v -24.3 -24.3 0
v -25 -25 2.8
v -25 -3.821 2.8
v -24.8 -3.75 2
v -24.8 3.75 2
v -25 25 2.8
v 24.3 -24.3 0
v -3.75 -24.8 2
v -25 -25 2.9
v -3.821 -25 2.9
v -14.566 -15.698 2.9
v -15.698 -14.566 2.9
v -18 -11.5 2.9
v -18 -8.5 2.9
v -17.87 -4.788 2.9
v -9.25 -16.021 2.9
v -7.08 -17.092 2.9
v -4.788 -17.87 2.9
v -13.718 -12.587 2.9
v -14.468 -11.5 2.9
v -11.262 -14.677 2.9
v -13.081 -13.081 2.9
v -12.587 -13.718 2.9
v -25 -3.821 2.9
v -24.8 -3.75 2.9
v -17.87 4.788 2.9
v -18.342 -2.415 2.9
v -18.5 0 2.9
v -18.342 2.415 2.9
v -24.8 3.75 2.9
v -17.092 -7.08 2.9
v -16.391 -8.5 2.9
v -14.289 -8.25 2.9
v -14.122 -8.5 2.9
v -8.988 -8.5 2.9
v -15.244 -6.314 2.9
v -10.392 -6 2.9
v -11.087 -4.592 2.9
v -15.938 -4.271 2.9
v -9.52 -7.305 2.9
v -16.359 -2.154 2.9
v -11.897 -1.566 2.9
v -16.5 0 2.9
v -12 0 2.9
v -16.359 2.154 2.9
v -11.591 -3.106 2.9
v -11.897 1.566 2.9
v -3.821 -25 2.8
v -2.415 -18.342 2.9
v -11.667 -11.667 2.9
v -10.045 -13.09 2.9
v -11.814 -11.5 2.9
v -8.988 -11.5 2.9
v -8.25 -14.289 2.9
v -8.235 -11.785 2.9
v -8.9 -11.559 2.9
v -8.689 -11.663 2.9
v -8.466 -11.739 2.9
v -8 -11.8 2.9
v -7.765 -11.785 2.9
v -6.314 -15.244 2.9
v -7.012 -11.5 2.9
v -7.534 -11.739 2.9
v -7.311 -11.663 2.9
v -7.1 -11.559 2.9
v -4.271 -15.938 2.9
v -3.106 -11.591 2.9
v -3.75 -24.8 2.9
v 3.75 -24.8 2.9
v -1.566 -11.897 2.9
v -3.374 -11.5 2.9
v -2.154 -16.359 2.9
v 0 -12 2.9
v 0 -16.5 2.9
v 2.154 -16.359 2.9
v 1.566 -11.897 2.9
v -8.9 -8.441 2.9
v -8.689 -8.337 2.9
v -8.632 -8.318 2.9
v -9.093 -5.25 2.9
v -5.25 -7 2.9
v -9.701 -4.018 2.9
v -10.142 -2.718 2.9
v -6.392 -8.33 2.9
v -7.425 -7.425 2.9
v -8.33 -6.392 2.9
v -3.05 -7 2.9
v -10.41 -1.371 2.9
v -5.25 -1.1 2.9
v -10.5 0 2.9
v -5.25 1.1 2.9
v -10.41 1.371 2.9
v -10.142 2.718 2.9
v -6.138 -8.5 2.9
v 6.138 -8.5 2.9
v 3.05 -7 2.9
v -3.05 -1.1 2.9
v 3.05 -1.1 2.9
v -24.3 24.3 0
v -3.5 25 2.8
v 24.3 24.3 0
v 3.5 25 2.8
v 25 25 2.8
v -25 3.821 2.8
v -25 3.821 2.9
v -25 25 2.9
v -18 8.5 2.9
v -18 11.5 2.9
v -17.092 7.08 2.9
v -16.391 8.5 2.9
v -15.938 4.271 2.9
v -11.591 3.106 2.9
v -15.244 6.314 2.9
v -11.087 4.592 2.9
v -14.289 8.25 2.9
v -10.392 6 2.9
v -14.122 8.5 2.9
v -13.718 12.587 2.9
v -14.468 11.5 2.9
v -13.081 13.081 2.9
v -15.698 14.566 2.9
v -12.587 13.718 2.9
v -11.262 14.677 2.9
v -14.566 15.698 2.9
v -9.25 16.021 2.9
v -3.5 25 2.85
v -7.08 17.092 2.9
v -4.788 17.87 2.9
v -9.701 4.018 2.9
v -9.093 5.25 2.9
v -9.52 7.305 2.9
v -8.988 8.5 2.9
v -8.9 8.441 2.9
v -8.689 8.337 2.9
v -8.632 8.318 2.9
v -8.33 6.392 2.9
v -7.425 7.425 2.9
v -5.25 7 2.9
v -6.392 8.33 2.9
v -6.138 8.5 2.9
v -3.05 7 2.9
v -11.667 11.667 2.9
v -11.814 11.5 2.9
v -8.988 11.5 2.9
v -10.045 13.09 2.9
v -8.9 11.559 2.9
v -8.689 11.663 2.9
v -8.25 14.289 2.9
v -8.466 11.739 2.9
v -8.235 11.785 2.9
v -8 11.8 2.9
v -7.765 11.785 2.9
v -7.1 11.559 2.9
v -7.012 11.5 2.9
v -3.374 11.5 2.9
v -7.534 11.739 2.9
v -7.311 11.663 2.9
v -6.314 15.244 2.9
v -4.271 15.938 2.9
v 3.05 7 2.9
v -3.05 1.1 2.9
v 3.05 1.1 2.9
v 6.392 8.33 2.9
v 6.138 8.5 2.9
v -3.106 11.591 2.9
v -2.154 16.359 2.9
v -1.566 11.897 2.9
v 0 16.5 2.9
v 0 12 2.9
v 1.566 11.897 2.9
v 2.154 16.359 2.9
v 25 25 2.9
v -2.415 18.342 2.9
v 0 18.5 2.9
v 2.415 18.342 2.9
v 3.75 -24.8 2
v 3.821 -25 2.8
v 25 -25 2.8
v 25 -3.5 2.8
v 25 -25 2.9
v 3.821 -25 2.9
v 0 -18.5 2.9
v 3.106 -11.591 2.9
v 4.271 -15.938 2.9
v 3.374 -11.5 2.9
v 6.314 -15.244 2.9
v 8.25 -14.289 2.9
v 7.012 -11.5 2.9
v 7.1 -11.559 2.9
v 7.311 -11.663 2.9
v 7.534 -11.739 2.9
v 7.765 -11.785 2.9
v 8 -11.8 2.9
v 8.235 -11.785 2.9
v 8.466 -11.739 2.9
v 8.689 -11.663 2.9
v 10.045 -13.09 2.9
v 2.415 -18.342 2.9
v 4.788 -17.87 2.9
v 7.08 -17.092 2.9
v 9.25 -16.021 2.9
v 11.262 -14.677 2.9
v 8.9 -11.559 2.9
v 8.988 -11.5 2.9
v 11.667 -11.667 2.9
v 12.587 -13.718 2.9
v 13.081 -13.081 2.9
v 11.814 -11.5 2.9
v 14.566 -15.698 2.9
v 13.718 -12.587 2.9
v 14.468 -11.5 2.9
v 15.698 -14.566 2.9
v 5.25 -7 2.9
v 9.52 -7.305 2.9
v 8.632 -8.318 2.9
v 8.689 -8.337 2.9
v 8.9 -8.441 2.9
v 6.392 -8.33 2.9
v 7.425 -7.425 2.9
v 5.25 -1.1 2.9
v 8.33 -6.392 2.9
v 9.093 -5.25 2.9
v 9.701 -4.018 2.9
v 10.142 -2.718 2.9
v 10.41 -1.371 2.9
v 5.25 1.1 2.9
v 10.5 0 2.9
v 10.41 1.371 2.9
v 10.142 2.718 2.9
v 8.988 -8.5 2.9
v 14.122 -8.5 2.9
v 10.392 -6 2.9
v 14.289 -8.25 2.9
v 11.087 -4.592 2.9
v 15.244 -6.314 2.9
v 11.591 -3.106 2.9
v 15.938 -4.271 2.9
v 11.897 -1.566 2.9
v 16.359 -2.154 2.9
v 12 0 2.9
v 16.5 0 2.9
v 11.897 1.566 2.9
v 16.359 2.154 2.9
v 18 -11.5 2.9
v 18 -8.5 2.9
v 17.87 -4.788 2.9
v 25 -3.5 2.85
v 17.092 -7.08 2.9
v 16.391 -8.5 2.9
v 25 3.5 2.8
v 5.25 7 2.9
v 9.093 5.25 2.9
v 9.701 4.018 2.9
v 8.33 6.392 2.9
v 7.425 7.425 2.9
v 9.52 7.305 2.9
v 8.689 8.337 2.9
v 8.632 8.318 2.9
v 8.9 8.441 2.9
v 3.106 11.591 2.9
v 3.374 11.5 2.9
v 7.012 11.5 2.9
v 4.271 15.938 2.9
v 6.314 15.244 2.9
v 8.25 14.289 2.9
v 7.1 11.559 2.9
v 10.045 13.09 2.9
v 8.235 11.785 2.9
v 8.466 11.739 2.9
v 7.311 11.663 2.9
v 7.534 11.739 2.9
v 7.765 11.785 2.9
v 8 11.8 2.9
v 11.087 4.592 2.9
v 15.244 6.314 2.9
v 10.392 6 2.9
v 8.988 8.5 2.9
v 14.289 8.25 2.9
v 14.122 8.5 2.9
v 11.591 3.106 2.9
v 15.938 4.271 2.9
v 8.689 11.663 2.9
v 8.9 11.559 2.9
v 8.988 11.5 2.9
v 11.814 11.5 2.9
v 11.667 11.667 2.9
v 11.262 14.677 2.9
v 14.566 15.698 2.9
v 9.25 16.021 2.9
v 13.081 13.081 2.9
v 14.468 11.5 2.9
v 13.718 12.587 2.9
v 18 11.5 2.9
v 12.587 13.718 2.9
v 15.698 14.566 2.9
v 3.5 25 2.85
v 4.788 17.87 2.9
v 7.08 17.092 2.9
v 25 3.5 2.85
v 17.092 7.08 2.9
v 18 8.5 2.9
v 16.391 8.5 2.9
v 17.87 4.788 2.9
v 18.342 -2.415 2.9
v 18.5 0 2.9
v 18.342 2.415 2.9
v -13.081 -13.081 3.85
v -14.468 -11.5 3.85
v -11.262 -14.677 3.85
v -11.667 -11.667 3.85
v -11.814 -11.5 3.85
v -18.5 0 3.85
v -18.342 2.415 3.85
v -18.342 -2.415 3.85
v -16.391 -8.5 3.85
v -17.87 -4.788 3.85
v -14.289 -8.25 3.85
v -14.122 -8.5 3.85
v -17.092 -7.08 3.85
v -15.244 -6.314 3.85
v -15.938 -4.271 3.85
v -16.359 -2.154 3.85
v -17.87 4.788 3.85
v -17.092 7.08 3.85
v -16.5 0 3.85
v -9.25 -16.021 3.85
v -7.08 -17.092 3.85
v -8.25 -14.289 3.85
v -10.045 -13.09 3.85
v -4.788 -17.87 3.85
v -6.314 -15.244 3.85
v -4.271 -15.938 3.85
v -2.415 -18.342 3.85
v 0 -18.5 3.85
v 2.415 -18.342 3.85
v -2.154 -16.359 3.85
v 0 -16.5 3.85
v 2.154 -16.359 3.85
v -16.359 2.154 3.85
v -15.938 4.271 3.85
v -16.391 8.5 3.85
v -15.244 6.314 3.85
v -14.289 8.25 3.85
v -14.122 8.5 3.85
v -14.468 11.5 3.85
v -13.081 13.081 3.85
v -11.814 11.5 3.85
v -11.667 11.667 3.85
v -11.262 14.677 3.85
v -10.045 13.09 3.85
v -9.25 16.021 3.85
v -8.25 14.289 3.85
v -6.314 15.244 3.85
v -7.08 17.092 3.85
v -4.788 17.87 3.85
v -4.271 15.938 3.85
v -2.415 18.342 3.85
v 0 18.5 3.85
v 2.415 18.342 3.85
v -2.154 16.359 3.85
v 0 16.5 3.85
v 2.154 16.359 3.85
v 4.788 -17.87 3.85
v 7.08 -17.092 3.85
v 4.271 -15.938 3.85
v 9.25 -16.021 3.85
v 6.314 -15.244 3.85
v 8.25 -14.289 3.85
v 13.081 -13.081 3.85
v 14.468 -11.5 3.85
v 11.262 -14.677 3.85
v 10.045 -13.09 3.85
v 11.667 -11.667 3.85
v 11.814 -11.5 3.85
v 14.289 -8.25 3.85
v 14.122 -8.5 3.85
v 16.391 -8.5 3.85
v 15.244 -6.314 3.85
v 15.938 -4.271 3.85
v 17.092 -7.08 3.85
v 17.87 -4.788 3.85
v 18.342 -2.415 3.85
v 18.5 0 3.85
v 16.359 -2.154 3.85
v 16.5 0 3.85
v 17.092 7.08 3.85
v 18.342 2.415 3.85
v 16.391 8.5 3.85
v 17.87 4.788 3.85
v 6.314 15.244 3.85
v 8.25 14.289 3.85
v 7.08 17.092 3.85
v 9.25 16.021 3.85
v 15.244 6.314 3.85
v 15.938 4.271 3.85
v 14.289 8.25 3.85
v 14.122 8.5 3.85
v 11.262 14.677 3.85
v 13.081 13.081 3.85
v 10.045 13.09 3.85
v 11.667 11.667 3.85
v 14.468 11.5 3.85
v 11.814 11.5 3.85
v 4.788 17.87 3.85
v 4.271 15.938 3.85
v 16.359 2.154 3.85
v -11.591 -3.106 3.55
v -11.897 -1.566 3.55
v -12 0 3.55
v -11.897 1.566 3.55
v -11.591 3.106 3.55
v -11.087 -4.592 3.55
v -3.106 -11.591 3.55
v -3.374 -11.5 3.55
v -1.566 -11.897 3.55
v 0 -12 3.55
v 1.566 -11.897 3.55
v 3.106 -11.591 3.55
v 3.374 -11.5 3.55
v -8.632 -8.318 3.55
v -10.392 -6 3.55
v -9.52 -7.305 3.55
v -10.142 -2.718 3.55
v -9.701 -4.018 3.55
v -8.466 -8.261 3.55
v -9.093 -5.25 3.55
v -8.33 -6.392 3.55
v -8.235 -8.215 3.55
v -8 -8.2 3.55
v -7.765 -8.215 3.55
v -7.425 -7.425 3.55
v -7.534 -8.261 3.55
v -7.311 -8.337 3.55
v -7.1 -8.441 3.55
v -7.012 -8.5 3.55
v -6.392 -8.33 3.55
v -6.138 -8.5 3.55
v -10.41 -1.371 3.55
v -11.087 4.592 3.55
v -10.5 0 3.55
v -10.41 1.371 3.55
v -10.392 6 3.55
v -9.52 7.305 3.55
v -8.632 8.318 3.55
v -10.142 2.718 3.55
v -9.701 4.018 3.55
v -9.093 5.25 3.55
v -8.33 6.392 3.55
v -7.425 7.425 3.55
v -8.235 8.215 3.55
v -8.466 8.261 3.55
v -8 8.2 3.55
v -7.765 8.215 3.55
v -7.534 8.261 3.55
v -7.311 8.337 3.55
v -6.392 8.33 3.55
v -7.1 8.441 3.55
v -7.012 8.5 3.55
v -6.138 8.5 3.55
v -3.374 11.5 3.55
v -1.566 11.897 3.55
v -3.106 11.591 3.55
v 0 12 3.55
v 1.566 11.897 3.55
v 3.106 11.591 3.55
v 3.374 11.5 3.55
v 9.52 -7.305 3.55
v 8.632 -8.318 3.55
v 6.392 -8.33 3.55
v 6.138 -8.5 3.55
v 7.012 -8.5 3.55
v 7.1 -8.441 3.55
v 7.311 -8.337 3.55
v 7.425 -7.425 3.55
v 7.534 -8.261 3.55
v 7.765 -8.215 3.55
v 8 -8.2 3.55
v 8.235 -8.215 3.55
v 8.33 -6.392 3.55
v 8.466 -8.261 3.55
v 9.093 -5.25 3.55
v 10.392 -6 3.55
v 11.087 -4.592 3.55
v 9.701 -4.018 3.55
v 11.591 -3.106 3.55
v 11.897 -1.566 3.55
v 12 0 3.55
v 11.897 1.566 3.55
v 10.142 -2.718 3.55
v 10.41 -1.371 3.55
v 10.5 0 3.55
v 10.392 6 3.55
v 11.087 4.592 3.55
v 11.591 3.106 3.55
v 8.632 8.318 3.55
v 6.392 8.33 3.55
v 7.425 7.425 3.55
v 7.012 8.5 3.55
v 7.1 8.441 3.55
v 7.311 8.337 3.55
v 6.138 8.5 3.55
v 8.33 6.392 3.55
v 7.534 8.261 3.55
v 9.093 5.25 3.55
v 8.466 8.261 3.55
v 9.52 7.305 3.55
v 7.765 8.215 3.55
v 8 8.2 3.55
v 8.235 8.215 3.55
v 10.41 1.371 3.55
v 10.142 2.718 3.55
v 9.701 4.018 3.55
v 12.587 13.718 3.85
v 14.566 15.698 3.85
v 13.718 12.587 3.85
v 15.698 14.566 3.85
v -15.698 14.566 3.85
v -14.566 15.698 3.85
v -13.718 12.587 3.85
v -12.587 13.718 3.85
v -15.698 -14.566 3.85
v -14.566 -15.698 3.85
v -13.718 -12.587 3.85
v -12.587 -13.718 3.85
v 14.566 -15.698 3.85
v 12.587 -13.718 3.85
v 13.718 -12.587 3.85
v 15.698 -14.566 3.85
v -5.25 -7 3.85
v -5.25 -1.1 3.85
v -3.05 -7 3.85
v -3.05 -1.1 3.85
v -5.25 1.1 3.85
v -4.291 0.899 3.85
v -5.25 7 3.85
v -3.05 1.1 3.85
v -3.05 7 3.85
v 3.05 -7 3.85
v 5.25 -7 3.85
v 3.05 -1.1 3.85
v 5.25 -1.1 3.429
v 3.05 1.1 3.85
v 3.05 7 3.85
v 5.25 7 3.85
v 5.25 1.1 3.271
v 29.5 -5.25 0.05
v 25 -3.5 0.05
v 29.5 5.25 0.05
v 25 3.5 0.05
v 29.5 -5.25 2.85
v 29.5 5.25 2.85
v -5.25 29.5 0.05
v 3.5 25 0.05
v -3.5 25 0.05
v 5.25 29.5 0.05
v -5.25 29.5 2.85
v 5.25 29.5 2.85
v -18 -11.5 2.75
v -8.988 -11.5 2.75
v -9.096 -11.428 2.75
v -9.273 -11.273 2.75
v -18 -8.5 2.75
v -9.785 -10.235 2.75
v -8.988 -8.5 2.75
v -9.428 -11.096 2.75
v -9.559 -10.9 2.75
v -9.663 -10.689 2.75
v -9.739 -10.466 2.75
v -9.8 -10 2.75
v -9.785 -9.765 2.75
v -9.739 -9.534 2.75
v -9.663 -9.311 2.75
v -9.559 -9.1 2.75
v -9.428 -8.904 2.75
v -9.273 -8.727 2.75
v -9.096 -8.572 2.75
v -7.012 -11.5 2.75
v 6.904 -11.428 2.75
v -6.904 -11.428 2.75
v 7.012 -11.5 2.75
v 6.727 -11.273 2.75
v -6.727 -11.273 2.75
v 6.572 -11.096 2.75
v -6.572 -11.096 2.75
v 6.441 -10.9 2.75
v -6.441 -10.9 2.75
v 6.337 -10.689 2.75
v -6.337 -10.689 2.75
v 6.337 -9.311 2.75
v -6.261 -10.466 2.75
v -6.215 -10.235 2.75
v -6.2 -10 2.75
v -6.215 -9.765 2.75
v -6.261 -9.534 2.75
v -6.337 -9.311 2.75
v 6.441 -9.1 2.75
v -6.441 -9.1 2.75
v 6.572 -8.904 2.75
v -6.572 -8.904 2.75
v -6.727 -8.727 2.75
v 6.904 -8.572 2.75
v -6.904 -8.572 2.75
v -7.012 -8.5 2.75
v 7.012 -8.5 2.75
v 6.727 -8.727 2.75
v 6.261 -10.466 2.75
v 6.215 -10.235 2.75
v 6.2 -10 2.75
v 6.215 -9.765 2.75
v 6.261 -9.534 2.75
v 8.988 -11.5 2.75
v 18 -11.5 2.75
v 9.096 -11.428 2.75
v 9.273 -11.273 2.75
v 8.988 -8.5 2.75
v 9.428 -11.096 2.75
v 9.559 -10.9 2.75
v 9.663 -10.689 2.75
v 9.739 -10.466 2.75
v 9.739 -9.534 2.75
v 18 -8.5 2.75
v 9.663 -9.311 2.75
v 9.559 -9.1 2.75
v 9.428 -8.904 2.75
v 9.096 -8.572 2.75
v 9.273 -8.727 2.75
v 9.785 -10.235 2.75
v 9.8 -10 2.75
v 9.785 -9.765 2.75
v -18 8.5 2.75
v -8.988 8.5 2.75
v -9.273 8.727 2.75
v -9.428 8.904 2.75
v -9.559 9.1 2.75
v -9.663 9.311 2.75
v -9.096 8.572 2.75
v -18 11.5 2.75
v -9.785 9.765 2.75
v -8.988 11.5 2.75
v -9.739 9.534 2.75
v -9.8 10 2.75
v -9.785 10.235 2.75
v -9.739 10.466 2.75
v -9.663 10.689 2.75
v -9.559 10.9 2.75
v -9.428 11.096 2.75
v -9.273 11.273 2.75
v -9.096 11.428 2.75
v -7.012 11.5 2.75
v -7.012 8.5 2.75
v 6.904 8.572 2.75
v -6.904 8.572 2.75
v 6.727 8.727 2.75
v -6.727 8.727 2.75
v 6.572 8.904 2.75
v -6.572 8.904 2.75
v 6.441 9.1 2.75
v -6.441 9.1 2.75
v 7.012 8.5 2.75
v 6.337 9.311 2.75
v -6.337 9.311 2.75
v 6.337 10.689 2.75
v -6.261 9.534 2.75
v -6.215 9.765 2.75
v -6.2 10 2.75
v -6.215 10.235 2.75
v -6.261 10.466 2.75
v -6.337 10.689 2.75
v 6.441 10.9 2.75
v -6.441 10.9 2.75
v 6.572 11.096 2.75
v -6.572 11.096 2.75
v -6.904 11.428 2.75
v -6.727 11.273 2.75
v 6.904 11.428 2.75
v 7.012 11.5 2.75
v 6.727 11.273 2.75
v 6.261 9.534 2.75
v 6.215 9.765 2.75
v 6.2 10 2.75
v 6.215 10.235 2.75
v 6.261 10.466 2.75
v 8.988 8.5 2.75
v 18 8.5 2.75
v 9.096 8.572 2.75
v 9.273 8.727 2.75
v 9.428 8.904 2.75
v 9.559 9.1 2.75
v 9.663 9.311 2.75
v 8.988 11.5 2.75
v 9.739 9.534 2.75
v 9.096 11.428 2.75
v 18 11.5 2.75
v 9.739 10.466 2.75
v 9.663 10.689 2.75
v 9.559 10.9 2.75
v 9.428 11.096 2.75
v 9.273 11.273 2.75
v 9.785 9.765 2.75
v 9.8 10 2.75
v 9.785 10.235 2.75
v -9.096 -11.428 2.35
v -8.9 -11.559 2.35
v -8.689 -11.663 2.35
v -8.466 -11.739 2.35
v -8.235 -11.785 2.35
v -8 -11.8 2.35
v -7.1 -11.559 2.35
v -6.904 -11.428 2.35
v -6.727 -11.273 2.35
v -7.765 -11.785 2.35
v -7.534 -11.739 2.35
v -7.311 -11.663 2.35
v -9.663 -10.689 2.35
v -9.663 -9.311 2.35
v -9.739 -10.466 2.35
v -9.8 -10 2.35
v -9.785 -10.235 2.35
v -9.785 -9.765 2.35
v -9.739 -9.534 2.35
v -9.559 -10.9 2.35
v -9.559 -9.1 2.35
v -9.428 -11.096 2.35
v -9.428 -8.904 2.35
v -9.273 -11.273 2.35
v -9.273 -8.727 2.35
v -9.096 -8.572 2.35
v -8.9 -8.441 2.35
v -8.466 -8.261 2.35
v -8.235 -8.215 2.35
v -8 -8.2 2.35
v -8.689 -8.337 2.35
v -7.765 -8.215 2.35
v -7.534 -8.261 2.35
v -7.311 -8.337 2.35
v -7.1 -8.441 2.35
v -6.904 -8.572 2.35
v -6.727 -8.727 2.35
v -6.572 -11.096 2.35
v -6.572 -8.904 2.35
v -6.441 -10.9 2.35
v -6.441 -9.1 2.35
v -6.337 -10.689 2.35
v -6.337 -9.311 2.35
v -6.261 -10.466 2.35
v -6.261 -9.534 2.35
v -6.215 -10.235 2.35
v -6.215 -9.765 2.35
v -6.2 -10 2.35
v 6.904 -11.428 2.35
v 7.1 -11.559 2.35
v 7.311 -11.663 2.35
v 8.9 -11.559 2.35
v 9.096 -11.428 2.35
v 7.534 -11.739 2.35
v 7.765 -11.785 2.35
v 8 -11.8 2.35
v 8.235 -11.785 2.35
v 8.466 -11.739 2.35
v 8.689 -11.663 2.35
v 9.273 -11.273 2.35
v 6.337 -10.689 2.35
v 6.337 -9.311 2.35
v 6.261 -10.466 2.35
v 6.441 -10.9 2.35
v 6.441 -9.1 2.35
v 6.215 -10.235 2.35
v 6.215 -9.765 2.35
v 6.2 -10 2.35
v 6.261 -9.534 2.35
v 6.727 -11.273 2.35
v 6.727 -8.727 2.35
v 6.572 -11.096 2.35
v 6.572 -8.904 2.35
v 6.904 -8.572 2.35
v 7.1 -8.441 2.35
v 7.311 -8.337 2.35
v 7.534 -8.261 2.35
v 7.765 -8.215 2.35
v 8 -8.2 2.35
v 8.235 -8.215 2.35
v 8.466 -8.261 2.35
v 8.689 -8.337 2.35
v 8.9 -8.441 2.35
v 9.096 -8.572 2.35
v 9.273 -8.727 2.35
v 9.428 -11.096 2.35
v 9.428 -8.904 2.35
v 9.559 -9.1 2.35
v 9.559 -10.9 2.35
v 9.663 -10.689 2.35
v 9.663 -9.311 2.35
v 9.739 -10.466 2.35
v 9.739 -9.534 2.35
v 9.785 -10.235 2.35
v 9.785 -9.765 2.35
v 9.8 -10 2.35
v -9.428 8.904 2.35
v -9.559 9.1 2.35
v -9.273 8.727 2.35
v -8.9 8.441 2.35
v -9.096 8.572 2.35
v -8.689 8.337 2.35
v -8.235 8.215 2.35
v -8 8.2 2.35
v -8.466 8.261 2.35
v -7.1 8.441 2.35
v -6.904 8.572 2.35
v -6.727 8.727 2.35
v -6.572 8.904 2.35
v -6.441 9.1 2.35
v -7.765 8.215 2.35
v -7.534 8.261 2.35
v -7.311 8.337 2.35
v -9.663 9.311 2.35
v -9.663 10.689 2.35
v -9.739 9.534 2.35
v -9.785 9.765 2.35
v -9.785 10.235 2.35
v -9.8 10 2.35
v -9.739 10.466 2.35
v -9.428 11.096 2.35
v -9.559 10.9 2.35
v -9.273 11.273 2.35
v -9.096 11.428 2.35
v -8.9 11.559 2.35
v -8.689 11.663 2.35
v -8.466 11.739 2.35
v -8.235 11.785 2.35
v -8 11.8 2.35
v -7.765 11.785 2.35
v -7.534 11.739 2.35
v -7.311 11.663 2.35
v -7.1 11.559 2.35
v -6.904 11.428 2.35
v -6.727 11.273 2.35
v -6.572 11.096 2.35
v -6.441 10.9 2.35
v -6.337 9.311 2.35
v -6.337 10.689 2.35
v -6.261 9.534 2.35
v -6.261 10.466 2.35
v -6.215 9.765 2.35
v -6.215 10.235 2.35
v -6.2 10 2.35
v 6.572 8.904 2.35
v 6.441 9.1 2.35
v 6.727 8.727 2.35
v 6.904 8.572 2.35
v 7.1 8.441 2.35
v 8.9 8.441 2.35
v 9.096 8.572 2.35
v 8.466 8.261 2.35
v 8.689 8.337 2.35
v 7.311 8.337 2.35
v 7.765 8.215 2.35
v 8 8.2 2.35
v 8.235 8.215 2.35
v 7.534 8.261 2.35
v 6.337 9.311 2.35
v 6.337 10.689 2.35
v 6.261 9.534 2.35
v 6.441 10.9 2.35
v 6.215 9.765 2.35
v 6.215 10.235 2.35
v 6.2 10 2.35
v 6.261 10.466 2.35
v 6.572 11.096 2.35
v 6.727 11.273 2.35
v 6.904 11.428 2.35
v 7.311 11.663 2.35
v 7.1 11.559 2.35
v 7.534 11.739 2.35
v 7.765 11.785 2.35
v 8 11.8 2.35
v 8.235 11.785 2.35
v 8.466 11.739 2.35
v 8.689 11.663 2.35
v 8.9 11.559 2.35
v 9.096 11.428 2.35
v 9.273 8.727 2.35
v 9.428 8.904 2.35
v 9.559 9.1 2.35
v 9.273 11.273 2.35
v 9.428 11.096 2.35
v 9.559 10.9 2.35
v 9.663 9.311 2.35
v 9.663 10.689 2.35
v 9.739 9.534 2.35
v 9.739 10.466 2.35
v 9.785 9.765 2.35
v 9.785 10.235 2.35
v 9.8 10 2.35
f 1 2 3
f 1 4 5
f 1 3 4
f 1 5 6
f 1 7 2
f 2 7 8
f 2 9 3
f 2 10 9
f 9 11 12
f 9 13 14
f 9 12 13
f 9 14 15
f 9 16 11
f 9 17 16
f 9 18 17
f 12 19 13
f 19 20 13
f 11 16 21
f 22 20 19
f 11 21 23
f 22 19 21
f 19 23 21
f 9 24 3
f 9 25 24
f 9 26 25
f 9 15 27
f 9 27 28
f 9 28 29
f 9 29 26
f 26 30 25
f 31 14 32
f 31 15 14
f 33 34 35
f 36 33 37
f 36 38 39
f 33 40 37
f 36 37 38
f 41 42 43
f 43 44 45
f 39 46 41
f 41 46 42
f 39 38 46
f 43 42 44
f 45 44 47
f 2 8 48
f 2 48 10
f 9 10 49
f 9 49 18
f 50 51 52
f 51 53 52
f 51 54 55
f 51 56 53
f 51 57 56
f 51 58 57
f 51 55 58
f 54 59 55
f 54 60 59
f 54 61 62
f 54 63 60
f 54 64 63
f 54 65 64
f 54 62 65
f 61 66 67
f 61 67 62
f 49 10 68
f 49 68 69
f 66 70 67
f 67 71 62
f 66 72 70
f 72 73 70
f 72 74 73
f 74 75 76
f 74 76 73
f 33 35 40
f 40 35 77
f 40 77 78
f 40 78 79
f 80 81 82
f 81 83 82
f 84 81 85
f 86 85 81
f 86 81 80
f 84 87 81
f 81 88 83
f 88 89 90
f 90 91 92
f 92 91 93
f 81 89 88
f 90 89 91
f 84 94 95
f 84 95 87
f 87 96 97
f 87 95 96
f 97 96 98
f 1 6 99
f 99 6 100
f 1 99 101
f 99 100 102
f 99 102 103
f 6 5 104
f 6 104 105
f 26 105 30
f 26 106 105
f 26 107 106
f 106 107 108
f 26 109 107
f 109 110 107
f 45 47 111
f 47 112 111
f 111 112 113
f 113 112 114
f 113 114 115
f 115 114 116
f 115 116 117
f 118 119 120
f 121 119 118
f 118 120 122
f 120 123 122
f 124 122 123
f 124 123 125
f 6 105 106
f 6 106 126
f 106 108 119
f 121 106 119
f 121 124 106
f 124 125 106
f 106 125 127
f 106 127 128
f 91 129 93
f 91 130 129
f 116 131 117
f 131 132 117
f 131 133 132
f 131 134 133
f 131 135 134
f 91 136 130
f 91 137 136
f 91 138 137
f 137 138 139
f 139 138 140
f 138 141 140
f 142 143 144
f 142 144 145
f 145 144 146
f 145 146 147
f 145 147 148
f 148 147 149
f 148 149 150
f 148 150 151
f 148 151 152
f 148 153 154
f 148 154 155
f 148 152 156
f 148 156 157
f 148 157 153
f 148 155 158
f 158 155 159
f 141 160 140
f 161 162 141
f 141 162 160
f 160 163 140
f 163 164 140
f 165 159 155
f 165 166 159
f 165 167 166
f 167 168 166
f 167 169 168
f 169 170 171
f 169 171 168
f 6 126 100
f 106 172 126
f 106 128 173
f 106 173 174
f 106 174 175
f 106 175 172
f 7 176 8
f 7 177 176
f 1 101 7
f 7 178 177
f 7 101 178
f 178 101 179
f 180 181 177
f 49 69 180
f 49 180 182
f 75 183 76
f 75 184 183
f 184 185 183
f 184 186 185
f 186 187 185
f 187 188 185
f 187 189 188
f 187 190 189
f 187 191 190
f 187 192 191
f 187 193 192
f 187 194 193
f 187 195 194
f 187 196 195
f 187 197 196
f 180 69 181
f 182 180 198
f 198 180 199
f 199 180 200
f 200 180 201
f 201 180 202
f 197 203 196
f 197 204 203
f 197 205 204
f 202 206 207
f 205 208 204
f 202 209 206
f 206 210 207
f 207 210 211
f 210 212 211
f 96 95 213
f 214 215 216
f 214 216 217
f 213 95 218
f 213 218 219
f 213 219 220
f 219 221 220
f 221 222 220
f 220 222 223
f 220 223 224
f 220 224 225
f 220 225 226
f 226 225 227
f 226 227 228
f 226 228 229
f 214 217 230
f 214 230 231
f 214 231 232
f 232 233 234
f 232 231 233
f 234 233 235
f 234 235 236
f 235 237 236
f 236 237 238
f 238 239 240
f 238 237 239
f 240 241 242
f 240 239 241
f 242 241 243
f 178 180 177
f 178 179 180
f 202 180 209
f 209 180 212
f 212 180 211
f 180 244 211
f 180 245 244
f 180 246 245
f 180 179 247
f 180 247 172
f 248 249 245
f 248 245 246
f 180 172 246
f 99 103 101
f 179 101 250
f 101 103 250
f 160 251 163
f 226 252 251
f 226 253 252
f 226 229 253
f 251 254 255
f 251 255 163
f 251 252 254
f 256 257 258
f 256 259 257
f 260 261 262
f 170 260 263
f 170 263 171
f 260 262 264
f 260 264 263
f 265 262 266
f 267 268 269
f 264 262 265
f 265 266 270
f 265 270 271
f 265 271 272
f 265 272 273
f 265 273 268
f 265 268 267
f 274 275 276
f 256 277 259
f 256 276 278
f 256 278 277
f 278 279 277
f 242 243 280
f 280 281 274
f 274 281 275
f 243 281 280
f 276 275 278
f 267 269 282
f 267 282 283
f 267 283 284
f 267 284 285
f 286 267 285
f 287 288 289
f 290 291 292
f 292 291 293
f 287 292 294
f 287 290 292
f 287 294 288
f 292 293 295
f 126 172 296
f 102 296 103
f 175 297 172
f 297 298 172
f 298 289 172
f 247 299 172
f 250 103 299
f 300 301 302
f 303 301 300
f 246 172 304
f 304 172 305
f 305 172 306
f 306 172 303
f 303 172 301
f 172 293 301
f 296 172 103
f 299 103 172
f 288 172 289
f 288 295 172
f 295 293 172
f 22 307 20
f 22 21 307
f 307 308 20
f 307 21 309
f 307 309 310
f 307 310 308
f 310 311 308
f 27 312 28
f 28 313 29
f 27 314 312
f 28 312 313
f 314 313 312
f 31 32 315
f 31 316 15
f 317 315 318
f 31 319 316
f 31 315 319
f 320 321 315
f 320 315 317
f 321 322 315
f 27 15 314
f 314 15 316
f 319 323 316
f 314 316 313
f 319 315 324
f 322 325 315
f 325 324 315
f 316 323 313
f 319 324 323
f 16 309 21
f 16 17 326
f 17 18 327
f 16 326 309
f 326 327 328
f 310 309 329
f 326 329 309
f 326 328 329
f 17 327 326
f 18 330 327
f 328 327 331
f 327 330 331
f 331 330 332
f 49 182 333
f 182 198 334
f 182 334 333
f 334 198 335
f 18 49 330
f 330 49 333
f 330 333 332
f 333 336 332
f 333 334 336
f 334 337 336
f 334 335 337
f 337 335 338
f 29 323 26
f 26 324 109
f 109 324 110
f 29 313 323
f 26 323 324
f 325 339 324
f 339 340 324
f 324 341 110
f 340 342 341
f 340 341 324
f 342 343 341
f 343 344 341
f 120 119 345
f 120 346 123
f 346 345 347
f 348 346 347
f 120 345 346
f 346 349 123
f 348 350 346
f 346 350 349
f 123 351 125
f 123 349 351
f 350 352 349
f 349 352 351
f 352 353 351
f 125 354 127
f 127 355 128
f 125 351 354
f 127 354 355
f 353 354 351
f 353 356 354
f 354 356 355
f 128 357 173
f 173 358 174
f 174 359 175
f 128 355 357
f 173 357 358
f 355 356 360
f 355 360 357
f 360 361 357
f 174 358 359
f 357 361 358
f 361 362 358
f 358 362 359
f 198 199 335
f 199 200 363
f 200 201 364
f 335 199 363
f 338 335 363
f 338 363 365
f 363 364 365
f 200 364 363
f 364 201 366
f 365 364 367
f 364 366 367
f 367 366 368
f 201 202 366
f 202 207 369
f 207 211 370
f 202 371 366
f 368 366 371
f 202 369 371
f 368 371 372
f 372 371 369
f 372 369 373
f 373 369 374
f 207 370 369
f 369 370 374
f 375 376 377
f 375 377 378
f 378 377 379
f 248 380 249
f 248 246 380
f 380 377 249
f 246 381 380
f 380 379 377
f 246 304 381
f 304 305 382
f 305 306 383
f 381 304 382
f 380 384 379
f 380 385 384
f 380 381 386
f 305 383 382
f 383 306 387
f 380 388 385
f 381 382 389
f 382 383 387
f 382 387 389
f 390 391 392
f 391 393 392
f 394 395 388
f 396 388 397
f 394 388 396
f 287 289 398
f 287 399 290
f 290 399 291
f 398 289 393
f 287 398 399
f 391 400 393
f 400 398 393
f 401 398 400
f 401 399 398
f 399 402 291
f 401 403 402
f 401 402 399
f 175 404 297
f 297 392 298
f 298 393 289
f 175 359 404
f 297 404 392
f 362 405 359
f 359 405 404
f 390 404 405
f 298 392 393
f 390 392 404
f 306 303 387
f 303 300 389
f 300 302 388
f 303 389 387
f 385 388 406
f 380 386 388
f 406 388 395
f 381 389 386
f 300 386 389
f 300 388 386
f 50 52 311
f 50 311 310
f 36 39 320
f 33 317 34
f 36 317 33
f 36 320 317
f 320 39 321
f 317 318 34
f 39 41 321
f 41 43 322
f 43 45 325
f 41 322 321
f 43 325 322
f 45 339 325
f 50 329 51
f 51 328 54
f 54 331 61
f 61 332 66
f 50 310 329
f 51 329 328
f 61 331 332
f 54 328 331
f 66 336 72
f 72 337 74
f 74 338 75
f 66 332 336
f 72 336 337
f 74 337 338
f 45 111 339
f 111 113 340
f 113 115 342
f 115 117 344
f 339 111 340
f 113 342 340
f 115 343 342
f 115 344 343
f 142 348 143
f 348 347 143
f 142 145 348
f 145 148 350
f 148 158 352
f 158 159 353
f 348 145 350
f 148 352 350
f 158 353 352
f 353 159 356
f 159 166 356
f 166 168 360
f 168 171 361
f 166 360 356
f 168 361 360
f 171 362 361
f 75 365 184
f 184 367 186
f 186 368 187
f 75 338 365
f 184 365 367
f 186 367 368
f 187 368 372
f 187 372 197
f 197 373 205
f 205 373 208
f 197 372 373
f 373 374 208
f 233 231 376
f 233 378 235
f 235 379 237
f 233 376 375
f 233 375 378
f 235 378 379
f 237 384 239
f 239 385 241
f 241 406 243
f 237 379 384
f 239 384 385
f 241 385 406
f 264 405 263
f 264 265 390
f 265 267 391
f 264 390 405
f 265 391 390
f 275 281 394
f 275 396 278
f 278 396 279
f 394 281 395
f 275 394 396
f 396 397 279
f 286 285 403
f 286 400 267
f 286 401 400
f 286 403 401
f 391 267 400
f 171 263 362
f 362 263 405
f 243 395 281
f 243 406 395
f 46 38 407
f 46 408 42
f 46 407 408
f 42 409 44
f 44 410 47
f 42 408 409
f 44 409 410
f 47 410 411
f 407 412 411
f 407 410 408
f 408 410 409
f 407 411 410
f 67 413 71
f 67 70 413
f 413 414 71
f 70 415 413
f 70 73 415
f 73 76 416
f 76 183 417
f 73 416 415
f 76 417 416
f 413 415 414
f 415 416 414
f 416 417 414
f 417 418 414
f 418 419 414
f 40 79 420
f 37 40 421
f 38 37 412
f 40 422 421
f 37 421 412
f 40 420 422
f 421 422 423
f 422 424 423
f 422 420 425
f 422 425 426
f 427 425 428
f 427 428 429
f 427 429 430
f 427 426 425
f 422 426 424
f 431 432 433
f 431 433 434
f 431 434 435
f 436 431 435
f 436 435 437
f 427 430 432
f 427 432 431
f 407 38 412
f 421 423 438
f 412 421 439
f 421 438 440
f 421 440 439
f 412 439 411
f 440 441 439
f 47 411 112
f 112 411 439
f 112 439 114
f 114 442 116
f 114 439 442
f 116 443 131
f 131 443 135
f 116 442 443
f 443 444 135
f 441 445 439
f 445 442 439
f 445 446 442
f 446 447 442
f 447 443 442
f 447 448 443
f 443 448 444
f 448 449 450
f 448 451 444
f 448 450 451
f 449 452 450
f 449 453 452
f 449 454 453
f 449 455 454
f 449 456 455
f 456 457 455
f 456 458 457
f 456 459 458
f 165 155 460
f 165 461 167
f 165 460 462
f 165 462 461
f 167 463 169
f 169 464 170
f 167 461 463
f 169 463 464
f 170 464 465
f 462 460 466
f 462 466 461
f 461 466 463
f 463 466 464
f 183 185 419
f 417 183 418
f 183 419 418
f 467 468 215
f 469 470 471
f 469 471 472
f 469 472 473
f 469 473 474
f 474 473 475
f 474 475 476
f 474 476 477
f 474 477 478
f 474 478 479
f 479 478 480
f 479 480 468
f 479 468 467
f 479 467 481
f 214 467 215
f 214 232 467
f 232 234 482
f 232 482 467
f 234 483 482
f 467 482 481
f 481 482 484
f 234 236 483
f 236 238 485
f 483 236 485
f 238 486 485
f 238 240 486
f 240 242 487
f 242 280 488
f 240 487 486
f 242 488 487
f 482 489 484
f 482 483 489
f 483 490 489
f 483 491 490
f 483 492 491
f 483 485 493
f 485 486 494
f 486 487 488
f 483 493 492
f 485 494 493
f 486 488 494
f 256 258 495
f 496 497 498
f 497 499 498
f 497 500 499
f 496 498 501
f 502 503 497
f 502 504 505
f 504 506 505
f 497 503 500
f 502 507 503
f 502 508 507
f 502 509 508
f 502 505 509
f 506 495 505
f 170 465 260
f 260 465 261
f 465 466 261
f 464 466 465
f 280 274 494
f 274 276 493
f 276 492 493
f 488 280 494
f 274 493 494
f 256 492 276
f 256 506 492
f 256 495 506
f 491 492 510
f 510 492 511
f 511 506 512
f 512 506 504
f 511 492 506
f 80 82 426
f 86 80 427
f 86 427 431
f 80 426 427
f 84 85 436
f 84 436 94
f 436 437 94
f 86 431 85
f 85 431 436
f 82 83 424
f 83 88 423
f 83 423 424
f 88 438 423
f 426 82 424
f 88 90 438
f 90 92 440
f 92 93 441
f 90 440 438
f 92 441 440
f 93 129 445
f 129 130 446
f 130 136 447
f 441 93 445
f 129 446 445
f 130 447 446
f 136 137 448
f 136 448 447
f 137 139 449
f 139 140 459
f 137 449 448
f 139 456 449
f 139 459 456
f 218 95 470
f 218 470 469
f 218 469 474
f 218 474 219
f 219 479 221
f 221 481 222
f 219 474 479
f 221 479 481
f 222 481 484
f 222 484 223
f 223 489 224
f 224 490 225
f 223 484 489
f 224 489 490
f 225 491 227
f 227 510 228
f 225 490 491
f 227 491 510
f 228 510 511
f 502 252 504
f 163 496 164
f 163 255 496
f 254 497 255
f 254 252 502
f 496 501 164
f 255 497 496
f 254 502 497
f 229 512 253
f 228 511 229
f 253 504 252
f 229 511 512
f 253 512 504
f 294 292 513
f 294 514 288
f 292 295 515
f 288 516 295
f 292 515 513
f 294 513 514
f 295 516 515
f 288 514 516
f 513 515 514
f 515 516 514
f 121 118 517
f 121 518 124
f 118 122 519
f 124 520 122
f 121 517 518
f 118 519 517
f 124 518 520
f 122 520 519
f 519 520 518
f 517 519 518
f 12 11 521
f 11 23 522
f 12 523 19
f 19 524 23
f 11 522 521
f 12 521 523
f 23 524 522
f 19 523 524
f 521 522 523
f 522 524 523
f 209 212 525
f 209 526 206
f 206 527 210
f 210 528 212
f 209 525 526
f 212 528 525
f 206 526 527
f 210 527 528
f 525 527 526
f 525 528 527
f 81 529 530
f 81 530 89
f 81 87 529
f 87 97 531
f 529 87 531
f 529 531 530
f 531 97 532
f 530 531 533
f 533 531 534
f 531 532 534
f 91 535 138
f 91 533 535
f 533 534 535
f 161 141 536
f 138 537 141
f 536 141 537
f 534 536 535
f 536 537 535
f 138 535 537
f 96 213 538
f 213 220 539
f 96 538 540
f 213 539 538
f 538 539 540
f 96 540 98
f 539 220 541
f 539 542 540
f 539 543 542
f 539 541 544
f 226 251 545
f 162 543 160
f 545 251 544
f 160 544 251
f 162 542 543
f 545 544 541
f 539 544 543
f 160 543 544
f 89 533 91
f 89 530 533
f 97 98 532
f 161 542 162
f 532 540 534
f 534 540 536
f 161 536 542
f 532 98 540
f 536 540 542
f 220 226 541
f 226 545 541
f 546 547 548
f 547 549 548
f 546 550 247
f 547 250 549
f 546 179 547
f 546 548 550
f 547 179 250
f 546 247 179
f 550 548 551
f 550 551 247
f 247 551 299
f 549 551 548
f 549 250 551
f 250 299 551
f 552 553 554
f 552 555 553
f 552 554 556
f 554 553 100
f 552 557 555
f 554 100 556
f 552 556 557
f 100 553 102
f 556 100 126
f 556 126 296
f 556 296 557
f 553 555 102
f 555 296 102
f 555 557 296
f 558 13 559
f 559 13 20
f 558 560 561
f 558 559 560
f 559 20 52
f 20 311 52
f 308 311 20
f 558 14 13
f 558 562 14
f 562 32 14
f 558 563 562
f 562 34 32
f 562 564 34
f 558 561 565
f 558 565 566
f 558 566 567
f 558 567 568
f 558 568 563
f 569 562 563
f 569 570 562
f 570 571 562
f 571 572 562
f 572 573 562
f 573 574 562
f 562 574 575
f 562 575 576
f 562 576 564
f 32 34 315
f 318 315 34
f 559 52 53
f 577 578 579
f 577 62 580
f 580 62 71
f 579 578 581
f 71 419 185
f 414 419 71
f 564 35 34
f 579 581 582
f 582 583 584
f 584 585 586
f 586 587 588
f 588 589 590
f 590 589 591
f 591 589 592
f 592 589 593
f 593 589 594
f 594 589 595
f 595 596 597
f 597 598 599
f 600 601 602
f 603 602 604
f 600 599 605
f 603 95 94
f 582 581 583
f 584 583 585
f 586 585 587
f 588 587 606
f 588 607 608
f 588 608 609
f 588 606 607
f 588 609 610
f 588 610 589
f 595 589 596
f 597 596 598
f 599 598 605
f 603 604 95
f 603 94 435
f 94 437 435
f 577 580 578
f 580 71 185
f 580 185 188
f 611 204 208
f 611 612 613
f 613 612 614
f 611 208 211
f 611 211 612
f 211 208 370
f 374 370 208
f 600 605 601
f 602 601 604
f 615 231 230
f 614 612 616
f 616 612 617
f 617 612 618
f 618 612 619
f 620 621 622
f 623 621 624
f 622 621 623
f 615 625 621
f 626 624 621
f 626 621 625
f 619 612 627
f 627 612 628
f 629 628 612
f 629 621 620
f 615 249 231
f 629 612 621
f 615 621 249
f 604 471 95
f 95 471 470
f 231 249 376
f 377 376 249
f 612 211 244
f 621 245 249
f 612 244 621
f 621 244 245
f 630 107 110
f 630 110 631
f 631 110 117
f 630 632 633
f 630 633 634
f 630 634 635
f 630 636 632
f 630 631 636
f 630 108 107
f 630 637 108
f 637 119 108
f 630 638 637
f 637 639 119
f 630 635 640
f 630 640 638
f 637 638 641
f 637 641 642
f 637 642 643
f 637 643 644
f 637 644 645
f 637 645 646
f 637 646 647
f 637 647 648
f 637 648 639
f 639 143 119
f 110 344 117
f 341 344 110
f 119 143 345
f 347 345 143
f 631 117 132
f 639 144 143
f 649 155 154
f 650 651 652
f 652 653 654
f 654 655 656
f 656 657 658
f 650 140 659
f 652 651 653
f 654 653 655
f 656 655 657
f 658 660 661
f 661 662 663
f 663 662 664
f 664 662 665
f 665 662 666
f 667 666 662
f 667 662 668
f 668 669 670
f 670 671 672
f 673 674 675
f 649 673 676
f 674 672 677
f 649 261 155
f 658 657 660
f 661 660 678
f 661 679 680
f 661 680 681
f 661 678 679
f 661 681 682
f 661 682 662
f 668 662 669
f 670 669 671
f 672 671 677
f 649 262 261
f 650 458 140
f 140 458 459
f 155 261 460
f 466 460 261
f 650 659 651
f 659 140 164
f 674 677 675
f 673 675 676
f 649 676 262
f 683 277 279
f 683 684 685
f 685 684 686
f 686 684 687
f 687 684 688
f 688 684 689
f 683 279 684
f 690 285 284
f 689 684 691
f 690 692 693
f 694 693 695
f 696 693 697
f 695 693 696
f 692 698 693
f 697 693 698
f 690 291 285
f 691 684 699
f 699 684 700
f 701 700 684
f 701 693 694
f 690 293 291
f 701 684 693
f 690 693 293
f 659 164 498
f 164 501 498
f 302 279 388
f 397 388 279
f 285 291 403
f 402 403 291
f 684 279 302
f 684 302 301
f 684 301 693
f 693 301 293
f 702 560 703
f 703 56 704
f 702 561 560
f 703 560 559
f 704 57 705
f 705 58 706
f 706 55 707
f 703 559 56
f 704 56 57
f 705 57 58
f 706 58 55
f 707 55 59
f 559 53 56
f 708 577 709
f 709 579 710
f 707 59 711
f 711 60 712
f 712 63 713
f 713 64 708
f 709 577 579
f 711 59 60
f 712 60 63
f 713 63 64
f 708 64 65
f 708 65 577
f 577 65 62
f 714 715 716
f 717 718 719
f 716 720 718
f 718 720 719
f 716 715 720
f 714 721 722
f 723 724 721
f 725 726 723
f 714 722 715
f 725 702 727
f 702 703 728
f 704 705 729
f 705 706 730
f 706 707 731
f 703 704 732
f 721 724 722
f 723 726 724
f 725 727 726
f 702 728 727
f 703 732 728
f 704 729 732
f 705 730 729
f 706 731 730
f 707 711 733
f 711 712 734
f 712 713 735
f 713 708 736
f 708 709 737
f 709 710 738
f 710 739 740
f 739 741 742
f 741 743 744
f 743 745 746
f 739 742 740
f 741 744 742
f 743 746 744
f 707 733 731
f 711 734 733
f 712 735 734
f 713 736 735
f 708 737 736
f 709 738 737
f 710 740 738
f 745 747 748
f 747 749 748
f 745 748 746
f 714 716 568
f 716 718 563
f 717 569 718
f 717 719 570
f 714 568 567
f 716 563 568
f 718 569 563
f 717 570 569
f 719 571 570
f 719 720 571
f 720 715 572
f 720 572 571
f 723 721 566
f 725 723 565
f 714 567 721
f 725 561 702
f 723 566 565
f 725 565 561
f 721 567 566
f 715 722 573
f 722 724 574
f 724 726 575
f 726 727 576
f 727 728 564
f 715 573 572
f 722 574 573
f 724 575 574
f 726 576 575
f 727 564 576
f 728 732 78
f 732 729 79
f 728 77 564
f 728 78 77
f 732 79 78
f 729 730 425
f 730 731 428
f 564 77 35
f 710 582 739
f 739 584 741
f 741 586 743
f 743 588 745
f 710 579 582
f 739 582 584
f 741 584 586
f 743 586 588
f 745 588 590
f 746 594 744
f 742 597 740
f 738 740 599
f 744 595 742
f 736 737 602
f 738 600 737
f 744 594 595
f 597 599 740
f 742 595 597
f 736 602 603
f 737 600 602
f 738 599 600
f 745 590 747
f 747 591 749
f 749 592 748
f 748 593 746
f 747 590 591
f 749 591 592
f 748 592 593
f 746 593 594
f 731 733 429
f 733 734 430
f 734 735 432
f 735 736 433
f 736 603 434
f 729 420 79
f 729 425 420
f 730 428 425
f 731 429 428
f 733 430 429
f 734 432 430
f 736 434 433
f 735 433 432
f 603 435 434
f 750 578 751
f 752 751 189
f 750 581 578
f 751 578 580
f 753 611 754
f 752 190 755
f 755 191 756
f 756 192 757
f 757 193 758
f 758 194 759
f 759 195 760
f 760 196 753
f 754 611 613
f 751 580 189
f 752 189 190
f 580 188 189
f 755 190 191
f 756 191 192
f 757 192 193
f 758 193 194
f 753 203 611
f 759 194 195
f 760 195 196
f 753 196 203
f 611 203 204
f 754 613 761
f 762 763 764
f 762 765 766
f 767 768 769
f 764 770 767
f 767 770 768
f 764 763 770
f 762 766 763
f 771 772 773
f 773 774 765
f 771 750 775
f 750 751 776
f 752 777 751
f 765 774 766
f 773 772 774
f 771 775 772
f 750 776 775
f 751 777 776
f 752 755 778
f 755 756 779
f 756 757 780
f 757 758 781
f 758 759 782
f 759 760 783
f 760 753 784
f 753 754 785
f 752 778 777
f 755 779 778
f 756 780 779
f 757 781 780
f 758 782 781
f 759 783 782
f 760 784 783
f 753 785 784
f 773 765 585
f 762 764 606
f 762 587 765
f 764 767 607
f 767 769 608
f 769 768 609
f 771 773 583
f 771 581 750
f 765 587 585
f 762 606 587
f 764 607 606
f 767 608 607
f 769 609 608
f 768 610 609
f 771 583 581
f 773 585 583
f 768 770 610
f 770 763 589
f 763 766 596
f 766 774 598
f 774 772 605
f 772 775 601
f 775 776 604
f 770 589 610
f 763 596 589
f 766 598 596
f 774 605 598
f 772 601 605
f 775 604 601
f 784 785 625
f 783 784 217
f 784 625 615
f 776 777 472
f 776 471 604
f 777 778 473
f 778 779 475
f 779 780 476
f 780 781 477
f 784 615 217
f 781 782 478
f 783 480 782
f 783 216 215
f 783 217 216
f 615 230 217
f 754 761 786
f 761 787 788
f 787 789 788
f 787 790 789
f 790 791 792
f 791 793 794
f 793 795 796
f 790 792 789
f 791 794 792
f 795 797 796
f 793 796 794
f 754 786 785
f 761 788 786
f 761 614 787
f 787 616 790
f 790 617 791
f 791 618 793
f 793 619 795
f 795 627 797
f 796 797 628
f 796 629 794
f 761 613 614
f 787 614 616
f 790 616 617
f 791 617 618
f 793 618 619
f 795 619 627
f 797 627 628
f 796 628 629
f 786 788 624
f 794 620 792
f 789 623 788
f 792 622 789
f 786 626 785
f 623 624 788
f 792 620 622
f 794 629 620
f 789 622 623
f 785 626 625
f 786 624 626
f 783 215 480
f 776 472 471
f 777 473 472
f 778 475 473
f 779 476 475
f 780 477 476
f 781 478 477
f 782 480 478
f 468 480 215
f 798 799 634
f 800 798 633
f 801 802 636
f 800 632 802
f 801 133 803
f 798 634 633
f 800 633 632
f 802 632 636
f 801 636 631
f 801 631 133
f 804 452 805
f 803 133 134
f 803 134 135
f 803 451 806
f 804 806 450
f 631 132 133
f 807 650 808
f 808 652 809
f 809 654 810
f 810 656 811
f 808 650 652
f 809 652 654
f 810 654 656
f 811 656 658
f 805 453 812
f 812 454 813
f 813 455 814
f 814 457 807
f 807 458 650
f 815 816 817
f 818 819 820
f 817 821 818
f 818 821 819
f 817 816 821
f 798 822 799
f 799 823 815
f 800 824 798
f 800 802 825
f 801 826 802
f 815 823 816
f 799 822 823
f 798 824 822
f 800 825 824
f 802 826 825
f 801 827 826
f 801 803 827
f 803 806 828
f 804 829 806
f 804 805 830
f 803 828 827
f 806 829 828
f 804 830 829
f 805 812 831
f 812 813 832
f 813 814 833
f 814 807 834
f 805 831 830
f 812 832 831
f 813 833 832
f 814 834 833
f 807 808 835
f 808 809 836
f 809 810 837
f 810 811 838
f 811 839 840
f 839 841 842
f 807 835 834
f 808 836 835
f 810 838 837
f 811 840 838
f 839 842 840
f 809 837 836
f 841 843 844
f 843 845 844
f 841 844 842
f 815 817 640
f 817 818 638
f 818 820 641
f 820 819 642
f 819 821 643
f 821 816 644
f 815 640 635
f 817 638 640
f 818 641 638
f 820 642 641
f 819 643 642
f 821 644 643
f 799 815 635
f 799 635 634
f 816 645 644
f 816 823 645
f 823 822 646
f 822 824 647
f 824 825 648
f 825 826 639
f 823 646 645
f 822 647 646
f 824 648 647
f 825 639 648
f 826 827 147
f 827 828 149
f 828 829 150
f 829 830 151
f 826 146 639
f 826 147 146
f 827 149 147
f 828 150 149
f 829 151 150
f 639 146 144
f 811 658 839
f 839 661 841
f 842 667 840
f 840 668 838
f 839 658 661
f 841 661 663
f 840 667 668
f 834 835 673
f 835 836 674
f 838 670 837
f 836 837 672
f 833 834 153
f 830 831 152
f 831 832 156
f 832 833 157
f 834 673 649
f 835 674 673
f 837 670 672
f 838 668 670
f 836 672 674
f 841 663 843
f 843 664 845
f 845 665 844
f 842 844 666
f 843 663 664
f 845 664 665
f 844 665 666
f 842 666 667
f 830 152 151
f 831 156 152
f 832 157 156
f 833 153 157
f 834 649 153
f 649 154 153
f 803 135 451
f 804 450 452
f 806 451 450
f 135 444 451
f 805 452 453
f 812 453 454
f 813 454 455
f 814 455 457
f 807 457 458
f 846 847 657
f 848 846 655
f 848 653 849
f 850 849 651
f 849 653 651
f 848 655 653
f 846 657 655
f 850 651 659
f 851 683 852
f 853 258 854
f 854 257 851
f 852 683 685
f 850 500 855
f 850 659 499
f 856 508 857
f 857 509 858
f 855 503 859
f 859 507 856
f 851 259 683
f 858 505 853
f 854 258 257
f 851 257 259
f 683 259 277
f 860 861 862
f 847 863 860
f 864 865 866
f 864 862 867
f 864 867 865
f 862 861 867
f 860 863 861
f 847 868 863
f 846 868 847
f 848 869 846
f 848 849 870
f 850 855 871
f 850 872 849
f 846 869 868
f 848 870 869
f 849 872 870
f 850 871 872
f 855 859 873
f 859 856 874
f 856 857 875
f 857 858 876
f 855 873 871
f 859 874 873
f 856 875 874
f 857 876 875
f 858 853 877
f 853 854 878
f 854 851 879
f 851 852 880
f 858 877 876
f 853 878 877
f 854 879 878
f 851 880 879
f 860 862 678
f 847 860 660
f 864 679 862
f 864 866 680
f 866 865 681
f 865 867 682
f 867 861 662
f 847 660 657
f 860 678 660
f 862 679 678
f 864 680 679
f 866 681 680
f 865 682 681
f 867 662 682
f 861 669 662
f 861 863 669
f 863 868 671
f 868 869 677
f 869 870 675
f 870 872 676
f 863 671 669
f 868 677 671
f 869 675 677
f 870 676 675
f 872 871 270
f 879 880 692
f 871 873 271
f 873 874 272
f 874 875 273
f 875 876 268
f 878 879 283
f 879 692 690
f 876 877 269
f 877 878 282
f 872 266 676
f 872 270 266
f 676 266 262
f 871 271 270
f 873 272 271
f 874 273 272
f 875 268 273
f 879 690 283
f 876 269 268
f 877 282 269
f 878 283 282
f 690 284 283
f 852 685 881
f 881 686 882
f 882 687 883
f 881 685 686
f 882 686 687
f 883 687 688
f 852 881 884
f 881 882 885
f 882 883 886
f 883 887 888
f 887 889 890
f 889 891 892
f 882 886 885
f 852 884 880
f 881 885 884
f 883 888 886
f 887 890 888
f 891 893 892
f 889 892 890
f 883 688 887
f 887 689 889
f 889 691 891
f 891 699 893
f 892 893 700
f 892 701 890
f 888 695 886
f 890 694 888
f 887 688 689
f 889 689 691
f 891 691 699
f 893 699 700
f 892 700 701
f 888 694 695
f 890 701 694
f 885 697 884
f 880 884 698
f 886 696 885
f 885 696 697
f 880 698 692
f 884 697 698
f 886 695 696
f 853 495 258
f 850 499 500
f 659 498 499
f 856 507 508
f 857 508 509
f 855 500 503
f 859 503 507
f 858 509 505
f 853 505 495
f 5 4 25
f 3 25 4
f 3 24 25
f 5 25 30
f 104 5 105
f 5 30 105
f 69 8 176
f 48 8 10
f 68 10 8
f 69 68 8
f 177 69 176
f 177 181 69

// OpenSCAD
// ====================================================================
// Modular Helipad Base - 5.0 cm (50mm) Square Interlocking Tile
// Dimensions: 50.0 mm x 50.0 mm x 3.8 mm
// Standard tile footprint designed for 5.0 cm Modular Chopper.
//
// Features:
// - Standard 50mm (5.0 cm) modular grid footprint
// - Male / Female dovetail connectors on orthogonal sides (0.25mm clearance)
// - Precision skid landing alignment slots (20.0mm track for 5cm chopper skids)
// - Helipad 'H' and concentric marking rings
// - 45-degree chamfered perimeter to prevent corner warping
// ====================================================================

$fn = 48;

tile_size = 50.0;
base_h    = 2.8;
relief_h  = 1.0;
total_h   = base_h + relief_h;
skid_span = 20.0; // Distance between skid centers (matches 5cm chopper)

// Dovetail parameters
dt_w_base = 7.0;
dt_w_tip  = 10.5;
dt_depth  = 4.5;
dt_tol    = 0.25; // Radial tolerance for snap fit

module dovetail_male() {
    linear_extrude(height = base_h)
        polygon([
            [-dt_w_base/2, 0],
            [ dt_w_base/2, 0],
            [ dt_w_tip/2,  dt_depth],
            [-dt_w_tip/2,  dt_depth]
        ]);
}

module dovetail_female() {
    w_b = dt_w_base/2 + dt_tol;
    w_t = dt_w_tip/2 + dt_tol;
    d   = dt_depth + dt_tol;
    translate([0, 0, -0.1])
        linear_extrude(height = base_h + 0.2)
            polygon([
                [-w_b, -0.2],
                [ w_b, -0.2],
                [ w_t,  d],
                [-w_t,  d]
            ]);
}

module helipad_markings() {
    // Concentric outer ring
    difference() {
        cylinder(r = 18.5, h = relief_h, center = false);
        translate([0, 0, -0.1])
            cylinder(r = 16.5, h = relief_h + 0.2, center = false);
    }

    // Inner dashed accent ring
    difference() {
        cylinder(r = 12.0, h = relief_h * 0.7, center = false);
        translate([0, 0, -0.1])
            cylinder(r = 10.5, h = relief_h + 0.2, center = false);
    }

    // Classic Helipad 'H' symbol
    h_h = 14.0;
    h_w = 10.5;
    h_t = 2.2;
    // Left vertical bar
    translate([-h_w/2 + h_t/2, 0, relief_h/2])
        cube([h_t, h_h, relief_h], center = true);
    // Right vertical bar
    translate([h_w/2 - h_t/2, 0, relief_h/2])
        cube([h_t, h_h, relief_h], center = true);
    // Center horizontal crossbar
    translate([0, 0, relief_h/2])
        cube([h_w, h_t, relief_h], center = true);

    // Corner alignment chevrons
    for (a = [45, 135, 225, 315]) {
        rotate([0, 0, a]) translate([20.0, 0, relief_h/2])
            cube([2.8, 1.6, relief_h], center = true);
    }
}

module helipad_tile() {
    difference() {
        union() {
            // Main chamfered tile body
            hull() {
                // Flat bottom contact at Z = 0 (48mm x 48mm with 1mm corner chamfers)
                translate([0, 0, 0])
                    cube([tile_size - 1.4, tile_size - 1.4, 0.1], center = true);
                // Beveled top deck at Z = base_h (50mm x 50mm)
                translate([0, 0, base_h])
                    cube([tile_size, tile_size, 0.1], center = true);
            }

            // Male dovetails (+X and +Y)
            translate([tile_size/2, 0, 0])
                rotate([0, 0, -90]) dovetail_male();
            translate([0, tile_size/2, 0])
                dovetail_male();

            // Raised markings
            translate([0, 0, base_h])
                helipad_markings();
        }

        // Female dovetails (-X and -Y)
        translate([-tile_size/2, 0, 0])
            rotate([0, 0, 90]) dovetail_female();
        translate([0, -tile_size/2, 0])
            rotate([0, 0, 180]) dovetail_female();

        // Skid landing guide grooves (aligned along X axis, spaced at skid_span)
        for (sy = [-1, 1]) {
            translate([0, sy * skid_span/2, base_h + relief_h - 0.5])
                cube([36.0, 3.0, 1.2], center = true);
        }

        // Skid center detent dimples
        for (sy = [-1, 1], sx = [-8.0, 8.0]) {
            translate([sx, sy * skid_span/2, base_h + relief_h - 0.9])
                cylinder(r = 1.8, h = 1.2, center = true);
        }
    }
}

// Standalone render grounded at Z = 0
translate([0, 0, 0.05])
    helipad_tile();
